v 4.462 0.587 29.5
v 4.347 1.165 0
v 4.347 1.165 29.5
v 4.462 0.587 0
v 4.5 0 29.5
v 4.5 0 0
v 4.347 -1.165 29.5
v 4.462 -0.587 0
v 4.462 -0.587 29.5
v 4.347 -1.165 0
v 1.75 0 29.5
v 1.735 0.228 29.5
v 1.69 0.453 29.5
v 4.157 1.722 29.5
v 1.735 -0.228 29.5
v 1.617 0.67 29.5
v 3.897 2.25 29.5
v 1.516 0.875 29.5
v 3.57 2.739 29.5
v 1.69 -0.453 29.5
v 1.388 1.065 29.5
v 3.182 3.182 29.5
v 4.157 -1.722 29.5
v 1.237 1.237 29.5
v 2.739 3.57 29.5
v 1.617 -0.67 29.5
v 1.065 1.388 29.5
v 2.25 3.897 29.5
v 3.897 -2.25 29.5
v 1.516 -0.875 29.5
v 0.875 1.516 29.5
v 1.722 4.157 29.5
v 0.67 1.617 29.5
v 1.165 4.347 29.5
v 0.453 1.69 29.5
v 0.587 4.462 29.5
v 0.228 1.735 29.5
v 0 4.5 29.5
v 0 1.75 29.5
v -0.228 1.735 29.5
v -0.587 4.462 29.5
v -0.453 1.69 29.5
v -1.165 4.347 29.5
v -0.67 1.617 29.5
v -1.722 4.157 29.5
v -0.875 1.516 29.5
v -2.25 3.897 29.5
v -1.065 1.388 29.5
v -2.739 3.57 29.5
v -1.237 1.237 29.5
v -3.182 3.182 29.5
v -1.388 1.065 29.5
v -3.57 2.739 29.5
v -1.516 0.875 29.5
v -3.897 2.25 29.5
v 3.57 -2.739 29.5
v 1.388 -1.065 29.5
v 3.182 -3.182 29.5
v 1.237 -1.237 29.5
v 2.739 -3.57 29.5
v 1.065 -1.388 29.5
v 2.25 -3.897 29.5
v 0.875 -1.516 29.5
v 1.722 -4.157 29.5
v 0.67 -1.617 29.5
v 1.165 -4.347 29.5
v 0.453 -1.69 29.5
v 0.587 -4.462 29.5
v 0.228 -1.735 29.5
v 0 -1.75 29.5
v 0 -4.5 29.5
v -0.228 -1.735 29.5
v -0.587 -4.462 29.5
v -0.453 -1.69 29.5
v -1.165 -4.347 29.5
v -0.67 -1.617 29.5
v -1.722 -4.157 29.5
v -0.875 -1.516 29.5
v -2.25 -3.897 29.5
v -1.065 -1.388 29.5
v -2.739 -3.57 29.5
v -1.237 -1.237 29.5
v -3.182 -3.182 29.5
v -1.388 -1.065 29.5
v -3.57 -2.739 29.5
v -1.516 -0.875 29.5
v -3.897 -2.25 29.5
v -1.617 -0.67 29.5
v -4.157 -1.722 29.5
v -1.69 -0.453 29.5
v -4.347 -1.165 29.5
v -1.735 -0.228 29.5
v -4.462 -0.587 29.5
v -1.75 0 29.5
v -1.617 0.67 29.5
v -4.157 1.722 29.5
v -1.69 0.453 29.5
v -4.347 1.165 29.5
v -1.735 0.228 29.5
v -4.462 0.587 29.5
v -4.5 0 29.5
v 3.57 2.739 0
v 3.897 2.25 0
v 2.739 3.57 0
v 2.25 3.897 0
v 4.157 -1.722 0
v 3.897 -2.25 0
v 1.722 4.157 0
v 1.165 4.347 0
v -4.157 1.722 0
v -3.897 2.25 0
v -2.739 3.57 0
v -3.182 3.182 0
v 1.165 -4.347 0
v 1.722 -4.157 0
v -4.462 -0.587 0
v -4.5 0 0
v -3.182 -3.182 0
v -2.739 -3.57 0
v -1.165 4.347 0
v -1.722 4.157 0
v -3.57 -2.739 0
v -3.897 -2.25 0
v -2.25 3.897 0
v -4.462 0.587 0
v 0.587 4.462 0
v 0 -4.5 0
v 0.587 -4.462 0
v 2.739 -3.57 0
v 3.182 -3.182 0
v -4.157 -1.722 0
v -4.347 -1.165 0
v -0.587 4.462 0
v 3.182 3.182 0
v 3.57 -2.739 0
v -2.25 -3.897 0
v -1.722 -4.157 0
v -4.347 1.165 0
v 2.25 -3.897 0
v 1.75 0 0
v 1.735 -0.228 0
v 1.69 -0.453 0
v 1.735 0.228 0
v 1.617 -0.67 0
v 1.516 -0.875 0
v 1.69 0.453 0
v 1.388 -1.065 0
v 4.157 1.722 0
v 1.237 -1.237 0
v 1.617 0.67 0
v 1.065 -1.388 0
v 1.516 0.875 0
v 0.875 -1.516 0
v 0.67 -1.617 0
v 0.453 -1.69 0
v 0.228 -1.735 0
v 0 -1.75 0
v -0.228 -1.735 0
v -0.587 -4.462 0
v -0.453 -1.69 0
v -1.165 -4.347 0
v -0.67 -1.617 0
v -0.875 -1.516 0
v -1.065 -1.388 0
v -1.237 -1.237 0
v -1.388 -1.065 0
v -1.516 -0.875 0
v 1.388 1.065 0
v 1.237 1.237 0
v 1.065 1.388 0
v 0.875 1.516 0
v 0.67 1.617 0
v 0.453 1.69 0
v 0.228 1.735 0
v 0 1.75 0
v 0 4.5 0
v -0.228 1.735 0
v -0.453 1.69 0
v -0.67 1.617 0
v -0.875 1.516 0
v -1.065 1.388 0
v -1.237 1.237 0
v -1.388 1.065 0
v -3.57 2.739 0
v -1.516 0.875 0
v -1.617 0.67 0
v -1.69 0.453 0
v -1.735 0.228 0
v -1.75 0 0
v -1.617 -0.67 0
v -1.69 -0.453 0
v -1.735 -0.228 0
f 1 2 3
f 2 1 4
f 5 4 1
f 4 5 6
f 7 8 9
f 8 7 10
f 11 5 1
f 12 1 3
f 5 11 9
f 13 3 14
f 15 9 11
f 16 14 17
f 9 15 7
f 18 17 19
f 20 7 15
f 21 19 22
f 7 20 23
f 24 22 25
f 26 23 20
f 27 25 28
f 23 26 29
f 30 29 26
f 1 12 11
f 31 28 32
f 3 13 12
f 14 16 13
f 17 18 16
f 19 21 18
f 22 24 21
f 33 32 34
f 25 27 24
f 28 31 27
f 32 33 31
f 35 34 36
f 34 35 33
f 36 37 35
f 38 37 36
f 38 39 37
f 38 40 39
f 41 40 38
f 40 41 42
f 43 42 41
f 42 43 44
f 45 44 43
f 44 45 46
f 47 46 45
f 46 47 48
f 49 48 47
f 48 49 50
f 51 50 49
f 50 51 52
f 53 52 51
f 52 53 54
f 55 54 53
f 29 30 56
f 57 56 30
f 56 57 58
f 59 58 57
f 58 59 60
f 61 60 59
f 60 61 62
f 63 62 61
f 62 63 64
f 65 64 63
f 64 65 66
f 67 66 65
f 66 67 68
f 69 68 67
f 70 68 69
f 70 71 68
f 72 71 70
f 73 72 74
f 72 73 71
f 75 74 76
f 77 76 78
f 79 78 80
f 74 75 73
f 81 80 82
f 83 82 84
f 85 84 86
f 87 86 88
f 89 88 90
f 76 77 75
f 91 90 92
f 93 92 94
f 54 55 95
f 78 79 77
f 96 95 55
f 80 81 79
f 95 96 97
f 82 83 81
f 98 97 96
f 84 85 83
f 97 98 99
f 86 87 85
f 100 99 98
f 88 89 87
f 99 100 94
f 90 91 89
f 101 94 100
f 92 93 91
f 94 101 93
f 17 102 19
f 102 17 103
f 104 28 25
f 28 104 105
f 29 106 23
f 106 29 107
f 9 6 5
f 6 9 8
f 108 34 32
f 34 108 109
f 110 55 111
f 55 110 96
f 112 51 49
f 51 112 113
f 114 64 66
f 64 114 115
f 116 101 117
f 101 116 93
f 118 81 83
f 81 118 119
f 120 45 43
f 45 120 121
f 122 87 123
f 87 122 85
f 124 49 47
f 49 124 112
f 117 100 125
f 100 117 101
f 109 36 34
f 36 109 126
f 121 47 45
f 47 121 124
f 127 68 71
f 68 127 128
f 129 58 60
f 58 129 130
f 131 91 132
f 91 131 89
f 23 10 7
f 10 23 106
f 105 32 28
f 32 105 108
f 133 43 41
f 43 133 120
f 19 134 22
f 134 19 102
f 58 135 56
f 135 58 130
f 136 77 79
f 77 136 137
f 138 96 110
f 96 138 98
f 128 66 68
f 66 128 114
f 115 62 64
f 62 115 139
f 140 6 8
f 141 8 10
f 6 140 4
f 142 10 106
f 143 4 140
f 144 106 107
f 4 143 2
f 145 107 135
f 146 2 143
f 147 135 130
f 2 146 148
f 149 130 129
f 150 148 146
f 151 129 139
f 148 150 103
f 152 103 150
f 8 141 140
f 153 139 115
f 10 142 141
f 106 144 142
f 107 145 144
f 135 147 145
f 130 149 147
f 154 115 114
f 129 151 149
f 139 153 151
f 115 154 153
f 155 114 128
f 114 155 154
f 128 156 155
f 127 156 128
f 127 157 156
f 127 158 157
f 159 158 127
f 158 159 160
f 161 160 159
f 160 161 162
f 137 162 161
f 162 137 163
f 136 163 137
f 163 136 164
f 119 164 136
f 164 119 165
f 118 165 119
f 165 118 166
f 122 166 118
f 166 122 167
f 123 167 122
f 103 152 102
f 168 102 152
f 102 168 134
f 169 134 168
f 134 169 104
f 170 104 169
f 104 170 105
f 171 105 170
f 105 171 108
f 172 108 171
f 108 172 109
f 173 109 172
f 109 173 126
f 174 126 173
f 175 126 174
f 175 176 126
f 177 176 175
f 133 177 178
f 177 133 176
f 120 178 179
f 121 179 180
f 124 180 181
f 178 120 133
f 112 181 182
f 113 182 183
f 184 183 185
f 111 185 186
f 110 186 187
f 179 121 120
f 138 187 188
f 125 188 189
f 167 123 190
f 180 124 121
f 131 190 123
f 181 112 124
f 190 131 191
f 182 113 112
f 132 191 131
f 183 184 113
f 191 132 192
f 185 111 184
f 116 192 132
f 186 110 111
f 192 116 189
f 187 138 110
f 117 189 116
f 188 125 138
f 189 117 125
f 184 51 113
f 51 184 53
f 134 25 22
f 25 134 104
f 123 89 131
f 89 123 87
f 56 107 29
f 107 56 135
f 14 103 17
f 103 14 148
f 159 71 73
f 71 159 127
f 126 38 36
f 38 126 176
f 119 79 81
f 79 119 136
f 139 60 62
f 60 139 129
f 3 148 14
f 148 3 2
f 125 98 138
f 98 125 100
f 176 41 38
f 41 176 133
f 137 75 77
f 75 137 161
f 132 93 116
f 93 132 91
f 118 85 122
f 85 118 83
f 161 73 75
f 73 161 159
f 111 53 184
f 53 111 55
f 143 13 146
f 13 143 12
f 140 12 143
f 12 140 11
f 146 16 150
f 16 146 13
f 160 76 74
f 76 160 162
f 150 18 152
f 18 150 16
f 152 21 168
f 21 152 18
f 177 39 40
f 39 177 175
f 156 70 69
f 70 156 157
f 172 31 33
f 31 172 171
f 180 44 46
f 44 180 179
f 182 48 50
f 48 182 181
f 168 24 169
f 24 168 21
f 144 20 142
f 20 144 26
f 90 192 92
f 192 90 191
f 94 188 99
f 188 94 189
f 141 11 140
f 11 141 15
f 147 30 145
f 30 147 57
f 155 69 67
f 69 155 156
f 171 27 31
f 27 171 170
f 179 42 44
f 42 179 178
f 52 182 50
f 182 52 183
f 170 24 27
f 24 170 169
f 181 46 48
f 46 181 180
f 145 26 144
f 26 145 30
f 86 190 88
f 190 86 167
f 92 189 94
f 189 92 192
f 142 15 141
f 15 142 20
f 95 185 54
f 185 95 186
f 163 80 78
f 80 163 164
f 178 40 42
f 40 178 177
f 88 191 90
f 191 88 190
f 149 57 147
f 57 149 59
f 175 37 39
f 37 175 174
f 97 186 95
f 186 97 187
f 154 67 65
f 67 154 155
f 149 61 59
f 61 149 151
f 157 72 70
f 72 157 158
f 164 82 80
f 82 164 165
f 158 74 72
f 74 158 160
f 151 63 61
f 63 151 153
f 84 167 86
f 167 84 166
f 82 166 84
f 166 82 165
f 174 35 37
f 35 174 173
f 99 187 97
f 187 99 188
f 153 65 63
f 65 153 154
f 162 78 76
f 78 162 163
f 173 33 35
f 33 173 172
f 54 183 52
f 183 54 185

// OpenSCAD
// Gen-CP — frame standoff tube between stator and an endbell, on each M3 frame rod (outside rotor OD).
// Print x4. Height = frame_standoff_h (rotor + steel + hub + collar + running clearance).
include <parameters.scad>;
$fn = 48;
difference() {
    cylinder(d=standoff_od, h=frame_standoff_h);
    translate([0, 0, -0.1]) cylinder(d=m3_clear, h=frame_standoff_h + 0.2);
}
